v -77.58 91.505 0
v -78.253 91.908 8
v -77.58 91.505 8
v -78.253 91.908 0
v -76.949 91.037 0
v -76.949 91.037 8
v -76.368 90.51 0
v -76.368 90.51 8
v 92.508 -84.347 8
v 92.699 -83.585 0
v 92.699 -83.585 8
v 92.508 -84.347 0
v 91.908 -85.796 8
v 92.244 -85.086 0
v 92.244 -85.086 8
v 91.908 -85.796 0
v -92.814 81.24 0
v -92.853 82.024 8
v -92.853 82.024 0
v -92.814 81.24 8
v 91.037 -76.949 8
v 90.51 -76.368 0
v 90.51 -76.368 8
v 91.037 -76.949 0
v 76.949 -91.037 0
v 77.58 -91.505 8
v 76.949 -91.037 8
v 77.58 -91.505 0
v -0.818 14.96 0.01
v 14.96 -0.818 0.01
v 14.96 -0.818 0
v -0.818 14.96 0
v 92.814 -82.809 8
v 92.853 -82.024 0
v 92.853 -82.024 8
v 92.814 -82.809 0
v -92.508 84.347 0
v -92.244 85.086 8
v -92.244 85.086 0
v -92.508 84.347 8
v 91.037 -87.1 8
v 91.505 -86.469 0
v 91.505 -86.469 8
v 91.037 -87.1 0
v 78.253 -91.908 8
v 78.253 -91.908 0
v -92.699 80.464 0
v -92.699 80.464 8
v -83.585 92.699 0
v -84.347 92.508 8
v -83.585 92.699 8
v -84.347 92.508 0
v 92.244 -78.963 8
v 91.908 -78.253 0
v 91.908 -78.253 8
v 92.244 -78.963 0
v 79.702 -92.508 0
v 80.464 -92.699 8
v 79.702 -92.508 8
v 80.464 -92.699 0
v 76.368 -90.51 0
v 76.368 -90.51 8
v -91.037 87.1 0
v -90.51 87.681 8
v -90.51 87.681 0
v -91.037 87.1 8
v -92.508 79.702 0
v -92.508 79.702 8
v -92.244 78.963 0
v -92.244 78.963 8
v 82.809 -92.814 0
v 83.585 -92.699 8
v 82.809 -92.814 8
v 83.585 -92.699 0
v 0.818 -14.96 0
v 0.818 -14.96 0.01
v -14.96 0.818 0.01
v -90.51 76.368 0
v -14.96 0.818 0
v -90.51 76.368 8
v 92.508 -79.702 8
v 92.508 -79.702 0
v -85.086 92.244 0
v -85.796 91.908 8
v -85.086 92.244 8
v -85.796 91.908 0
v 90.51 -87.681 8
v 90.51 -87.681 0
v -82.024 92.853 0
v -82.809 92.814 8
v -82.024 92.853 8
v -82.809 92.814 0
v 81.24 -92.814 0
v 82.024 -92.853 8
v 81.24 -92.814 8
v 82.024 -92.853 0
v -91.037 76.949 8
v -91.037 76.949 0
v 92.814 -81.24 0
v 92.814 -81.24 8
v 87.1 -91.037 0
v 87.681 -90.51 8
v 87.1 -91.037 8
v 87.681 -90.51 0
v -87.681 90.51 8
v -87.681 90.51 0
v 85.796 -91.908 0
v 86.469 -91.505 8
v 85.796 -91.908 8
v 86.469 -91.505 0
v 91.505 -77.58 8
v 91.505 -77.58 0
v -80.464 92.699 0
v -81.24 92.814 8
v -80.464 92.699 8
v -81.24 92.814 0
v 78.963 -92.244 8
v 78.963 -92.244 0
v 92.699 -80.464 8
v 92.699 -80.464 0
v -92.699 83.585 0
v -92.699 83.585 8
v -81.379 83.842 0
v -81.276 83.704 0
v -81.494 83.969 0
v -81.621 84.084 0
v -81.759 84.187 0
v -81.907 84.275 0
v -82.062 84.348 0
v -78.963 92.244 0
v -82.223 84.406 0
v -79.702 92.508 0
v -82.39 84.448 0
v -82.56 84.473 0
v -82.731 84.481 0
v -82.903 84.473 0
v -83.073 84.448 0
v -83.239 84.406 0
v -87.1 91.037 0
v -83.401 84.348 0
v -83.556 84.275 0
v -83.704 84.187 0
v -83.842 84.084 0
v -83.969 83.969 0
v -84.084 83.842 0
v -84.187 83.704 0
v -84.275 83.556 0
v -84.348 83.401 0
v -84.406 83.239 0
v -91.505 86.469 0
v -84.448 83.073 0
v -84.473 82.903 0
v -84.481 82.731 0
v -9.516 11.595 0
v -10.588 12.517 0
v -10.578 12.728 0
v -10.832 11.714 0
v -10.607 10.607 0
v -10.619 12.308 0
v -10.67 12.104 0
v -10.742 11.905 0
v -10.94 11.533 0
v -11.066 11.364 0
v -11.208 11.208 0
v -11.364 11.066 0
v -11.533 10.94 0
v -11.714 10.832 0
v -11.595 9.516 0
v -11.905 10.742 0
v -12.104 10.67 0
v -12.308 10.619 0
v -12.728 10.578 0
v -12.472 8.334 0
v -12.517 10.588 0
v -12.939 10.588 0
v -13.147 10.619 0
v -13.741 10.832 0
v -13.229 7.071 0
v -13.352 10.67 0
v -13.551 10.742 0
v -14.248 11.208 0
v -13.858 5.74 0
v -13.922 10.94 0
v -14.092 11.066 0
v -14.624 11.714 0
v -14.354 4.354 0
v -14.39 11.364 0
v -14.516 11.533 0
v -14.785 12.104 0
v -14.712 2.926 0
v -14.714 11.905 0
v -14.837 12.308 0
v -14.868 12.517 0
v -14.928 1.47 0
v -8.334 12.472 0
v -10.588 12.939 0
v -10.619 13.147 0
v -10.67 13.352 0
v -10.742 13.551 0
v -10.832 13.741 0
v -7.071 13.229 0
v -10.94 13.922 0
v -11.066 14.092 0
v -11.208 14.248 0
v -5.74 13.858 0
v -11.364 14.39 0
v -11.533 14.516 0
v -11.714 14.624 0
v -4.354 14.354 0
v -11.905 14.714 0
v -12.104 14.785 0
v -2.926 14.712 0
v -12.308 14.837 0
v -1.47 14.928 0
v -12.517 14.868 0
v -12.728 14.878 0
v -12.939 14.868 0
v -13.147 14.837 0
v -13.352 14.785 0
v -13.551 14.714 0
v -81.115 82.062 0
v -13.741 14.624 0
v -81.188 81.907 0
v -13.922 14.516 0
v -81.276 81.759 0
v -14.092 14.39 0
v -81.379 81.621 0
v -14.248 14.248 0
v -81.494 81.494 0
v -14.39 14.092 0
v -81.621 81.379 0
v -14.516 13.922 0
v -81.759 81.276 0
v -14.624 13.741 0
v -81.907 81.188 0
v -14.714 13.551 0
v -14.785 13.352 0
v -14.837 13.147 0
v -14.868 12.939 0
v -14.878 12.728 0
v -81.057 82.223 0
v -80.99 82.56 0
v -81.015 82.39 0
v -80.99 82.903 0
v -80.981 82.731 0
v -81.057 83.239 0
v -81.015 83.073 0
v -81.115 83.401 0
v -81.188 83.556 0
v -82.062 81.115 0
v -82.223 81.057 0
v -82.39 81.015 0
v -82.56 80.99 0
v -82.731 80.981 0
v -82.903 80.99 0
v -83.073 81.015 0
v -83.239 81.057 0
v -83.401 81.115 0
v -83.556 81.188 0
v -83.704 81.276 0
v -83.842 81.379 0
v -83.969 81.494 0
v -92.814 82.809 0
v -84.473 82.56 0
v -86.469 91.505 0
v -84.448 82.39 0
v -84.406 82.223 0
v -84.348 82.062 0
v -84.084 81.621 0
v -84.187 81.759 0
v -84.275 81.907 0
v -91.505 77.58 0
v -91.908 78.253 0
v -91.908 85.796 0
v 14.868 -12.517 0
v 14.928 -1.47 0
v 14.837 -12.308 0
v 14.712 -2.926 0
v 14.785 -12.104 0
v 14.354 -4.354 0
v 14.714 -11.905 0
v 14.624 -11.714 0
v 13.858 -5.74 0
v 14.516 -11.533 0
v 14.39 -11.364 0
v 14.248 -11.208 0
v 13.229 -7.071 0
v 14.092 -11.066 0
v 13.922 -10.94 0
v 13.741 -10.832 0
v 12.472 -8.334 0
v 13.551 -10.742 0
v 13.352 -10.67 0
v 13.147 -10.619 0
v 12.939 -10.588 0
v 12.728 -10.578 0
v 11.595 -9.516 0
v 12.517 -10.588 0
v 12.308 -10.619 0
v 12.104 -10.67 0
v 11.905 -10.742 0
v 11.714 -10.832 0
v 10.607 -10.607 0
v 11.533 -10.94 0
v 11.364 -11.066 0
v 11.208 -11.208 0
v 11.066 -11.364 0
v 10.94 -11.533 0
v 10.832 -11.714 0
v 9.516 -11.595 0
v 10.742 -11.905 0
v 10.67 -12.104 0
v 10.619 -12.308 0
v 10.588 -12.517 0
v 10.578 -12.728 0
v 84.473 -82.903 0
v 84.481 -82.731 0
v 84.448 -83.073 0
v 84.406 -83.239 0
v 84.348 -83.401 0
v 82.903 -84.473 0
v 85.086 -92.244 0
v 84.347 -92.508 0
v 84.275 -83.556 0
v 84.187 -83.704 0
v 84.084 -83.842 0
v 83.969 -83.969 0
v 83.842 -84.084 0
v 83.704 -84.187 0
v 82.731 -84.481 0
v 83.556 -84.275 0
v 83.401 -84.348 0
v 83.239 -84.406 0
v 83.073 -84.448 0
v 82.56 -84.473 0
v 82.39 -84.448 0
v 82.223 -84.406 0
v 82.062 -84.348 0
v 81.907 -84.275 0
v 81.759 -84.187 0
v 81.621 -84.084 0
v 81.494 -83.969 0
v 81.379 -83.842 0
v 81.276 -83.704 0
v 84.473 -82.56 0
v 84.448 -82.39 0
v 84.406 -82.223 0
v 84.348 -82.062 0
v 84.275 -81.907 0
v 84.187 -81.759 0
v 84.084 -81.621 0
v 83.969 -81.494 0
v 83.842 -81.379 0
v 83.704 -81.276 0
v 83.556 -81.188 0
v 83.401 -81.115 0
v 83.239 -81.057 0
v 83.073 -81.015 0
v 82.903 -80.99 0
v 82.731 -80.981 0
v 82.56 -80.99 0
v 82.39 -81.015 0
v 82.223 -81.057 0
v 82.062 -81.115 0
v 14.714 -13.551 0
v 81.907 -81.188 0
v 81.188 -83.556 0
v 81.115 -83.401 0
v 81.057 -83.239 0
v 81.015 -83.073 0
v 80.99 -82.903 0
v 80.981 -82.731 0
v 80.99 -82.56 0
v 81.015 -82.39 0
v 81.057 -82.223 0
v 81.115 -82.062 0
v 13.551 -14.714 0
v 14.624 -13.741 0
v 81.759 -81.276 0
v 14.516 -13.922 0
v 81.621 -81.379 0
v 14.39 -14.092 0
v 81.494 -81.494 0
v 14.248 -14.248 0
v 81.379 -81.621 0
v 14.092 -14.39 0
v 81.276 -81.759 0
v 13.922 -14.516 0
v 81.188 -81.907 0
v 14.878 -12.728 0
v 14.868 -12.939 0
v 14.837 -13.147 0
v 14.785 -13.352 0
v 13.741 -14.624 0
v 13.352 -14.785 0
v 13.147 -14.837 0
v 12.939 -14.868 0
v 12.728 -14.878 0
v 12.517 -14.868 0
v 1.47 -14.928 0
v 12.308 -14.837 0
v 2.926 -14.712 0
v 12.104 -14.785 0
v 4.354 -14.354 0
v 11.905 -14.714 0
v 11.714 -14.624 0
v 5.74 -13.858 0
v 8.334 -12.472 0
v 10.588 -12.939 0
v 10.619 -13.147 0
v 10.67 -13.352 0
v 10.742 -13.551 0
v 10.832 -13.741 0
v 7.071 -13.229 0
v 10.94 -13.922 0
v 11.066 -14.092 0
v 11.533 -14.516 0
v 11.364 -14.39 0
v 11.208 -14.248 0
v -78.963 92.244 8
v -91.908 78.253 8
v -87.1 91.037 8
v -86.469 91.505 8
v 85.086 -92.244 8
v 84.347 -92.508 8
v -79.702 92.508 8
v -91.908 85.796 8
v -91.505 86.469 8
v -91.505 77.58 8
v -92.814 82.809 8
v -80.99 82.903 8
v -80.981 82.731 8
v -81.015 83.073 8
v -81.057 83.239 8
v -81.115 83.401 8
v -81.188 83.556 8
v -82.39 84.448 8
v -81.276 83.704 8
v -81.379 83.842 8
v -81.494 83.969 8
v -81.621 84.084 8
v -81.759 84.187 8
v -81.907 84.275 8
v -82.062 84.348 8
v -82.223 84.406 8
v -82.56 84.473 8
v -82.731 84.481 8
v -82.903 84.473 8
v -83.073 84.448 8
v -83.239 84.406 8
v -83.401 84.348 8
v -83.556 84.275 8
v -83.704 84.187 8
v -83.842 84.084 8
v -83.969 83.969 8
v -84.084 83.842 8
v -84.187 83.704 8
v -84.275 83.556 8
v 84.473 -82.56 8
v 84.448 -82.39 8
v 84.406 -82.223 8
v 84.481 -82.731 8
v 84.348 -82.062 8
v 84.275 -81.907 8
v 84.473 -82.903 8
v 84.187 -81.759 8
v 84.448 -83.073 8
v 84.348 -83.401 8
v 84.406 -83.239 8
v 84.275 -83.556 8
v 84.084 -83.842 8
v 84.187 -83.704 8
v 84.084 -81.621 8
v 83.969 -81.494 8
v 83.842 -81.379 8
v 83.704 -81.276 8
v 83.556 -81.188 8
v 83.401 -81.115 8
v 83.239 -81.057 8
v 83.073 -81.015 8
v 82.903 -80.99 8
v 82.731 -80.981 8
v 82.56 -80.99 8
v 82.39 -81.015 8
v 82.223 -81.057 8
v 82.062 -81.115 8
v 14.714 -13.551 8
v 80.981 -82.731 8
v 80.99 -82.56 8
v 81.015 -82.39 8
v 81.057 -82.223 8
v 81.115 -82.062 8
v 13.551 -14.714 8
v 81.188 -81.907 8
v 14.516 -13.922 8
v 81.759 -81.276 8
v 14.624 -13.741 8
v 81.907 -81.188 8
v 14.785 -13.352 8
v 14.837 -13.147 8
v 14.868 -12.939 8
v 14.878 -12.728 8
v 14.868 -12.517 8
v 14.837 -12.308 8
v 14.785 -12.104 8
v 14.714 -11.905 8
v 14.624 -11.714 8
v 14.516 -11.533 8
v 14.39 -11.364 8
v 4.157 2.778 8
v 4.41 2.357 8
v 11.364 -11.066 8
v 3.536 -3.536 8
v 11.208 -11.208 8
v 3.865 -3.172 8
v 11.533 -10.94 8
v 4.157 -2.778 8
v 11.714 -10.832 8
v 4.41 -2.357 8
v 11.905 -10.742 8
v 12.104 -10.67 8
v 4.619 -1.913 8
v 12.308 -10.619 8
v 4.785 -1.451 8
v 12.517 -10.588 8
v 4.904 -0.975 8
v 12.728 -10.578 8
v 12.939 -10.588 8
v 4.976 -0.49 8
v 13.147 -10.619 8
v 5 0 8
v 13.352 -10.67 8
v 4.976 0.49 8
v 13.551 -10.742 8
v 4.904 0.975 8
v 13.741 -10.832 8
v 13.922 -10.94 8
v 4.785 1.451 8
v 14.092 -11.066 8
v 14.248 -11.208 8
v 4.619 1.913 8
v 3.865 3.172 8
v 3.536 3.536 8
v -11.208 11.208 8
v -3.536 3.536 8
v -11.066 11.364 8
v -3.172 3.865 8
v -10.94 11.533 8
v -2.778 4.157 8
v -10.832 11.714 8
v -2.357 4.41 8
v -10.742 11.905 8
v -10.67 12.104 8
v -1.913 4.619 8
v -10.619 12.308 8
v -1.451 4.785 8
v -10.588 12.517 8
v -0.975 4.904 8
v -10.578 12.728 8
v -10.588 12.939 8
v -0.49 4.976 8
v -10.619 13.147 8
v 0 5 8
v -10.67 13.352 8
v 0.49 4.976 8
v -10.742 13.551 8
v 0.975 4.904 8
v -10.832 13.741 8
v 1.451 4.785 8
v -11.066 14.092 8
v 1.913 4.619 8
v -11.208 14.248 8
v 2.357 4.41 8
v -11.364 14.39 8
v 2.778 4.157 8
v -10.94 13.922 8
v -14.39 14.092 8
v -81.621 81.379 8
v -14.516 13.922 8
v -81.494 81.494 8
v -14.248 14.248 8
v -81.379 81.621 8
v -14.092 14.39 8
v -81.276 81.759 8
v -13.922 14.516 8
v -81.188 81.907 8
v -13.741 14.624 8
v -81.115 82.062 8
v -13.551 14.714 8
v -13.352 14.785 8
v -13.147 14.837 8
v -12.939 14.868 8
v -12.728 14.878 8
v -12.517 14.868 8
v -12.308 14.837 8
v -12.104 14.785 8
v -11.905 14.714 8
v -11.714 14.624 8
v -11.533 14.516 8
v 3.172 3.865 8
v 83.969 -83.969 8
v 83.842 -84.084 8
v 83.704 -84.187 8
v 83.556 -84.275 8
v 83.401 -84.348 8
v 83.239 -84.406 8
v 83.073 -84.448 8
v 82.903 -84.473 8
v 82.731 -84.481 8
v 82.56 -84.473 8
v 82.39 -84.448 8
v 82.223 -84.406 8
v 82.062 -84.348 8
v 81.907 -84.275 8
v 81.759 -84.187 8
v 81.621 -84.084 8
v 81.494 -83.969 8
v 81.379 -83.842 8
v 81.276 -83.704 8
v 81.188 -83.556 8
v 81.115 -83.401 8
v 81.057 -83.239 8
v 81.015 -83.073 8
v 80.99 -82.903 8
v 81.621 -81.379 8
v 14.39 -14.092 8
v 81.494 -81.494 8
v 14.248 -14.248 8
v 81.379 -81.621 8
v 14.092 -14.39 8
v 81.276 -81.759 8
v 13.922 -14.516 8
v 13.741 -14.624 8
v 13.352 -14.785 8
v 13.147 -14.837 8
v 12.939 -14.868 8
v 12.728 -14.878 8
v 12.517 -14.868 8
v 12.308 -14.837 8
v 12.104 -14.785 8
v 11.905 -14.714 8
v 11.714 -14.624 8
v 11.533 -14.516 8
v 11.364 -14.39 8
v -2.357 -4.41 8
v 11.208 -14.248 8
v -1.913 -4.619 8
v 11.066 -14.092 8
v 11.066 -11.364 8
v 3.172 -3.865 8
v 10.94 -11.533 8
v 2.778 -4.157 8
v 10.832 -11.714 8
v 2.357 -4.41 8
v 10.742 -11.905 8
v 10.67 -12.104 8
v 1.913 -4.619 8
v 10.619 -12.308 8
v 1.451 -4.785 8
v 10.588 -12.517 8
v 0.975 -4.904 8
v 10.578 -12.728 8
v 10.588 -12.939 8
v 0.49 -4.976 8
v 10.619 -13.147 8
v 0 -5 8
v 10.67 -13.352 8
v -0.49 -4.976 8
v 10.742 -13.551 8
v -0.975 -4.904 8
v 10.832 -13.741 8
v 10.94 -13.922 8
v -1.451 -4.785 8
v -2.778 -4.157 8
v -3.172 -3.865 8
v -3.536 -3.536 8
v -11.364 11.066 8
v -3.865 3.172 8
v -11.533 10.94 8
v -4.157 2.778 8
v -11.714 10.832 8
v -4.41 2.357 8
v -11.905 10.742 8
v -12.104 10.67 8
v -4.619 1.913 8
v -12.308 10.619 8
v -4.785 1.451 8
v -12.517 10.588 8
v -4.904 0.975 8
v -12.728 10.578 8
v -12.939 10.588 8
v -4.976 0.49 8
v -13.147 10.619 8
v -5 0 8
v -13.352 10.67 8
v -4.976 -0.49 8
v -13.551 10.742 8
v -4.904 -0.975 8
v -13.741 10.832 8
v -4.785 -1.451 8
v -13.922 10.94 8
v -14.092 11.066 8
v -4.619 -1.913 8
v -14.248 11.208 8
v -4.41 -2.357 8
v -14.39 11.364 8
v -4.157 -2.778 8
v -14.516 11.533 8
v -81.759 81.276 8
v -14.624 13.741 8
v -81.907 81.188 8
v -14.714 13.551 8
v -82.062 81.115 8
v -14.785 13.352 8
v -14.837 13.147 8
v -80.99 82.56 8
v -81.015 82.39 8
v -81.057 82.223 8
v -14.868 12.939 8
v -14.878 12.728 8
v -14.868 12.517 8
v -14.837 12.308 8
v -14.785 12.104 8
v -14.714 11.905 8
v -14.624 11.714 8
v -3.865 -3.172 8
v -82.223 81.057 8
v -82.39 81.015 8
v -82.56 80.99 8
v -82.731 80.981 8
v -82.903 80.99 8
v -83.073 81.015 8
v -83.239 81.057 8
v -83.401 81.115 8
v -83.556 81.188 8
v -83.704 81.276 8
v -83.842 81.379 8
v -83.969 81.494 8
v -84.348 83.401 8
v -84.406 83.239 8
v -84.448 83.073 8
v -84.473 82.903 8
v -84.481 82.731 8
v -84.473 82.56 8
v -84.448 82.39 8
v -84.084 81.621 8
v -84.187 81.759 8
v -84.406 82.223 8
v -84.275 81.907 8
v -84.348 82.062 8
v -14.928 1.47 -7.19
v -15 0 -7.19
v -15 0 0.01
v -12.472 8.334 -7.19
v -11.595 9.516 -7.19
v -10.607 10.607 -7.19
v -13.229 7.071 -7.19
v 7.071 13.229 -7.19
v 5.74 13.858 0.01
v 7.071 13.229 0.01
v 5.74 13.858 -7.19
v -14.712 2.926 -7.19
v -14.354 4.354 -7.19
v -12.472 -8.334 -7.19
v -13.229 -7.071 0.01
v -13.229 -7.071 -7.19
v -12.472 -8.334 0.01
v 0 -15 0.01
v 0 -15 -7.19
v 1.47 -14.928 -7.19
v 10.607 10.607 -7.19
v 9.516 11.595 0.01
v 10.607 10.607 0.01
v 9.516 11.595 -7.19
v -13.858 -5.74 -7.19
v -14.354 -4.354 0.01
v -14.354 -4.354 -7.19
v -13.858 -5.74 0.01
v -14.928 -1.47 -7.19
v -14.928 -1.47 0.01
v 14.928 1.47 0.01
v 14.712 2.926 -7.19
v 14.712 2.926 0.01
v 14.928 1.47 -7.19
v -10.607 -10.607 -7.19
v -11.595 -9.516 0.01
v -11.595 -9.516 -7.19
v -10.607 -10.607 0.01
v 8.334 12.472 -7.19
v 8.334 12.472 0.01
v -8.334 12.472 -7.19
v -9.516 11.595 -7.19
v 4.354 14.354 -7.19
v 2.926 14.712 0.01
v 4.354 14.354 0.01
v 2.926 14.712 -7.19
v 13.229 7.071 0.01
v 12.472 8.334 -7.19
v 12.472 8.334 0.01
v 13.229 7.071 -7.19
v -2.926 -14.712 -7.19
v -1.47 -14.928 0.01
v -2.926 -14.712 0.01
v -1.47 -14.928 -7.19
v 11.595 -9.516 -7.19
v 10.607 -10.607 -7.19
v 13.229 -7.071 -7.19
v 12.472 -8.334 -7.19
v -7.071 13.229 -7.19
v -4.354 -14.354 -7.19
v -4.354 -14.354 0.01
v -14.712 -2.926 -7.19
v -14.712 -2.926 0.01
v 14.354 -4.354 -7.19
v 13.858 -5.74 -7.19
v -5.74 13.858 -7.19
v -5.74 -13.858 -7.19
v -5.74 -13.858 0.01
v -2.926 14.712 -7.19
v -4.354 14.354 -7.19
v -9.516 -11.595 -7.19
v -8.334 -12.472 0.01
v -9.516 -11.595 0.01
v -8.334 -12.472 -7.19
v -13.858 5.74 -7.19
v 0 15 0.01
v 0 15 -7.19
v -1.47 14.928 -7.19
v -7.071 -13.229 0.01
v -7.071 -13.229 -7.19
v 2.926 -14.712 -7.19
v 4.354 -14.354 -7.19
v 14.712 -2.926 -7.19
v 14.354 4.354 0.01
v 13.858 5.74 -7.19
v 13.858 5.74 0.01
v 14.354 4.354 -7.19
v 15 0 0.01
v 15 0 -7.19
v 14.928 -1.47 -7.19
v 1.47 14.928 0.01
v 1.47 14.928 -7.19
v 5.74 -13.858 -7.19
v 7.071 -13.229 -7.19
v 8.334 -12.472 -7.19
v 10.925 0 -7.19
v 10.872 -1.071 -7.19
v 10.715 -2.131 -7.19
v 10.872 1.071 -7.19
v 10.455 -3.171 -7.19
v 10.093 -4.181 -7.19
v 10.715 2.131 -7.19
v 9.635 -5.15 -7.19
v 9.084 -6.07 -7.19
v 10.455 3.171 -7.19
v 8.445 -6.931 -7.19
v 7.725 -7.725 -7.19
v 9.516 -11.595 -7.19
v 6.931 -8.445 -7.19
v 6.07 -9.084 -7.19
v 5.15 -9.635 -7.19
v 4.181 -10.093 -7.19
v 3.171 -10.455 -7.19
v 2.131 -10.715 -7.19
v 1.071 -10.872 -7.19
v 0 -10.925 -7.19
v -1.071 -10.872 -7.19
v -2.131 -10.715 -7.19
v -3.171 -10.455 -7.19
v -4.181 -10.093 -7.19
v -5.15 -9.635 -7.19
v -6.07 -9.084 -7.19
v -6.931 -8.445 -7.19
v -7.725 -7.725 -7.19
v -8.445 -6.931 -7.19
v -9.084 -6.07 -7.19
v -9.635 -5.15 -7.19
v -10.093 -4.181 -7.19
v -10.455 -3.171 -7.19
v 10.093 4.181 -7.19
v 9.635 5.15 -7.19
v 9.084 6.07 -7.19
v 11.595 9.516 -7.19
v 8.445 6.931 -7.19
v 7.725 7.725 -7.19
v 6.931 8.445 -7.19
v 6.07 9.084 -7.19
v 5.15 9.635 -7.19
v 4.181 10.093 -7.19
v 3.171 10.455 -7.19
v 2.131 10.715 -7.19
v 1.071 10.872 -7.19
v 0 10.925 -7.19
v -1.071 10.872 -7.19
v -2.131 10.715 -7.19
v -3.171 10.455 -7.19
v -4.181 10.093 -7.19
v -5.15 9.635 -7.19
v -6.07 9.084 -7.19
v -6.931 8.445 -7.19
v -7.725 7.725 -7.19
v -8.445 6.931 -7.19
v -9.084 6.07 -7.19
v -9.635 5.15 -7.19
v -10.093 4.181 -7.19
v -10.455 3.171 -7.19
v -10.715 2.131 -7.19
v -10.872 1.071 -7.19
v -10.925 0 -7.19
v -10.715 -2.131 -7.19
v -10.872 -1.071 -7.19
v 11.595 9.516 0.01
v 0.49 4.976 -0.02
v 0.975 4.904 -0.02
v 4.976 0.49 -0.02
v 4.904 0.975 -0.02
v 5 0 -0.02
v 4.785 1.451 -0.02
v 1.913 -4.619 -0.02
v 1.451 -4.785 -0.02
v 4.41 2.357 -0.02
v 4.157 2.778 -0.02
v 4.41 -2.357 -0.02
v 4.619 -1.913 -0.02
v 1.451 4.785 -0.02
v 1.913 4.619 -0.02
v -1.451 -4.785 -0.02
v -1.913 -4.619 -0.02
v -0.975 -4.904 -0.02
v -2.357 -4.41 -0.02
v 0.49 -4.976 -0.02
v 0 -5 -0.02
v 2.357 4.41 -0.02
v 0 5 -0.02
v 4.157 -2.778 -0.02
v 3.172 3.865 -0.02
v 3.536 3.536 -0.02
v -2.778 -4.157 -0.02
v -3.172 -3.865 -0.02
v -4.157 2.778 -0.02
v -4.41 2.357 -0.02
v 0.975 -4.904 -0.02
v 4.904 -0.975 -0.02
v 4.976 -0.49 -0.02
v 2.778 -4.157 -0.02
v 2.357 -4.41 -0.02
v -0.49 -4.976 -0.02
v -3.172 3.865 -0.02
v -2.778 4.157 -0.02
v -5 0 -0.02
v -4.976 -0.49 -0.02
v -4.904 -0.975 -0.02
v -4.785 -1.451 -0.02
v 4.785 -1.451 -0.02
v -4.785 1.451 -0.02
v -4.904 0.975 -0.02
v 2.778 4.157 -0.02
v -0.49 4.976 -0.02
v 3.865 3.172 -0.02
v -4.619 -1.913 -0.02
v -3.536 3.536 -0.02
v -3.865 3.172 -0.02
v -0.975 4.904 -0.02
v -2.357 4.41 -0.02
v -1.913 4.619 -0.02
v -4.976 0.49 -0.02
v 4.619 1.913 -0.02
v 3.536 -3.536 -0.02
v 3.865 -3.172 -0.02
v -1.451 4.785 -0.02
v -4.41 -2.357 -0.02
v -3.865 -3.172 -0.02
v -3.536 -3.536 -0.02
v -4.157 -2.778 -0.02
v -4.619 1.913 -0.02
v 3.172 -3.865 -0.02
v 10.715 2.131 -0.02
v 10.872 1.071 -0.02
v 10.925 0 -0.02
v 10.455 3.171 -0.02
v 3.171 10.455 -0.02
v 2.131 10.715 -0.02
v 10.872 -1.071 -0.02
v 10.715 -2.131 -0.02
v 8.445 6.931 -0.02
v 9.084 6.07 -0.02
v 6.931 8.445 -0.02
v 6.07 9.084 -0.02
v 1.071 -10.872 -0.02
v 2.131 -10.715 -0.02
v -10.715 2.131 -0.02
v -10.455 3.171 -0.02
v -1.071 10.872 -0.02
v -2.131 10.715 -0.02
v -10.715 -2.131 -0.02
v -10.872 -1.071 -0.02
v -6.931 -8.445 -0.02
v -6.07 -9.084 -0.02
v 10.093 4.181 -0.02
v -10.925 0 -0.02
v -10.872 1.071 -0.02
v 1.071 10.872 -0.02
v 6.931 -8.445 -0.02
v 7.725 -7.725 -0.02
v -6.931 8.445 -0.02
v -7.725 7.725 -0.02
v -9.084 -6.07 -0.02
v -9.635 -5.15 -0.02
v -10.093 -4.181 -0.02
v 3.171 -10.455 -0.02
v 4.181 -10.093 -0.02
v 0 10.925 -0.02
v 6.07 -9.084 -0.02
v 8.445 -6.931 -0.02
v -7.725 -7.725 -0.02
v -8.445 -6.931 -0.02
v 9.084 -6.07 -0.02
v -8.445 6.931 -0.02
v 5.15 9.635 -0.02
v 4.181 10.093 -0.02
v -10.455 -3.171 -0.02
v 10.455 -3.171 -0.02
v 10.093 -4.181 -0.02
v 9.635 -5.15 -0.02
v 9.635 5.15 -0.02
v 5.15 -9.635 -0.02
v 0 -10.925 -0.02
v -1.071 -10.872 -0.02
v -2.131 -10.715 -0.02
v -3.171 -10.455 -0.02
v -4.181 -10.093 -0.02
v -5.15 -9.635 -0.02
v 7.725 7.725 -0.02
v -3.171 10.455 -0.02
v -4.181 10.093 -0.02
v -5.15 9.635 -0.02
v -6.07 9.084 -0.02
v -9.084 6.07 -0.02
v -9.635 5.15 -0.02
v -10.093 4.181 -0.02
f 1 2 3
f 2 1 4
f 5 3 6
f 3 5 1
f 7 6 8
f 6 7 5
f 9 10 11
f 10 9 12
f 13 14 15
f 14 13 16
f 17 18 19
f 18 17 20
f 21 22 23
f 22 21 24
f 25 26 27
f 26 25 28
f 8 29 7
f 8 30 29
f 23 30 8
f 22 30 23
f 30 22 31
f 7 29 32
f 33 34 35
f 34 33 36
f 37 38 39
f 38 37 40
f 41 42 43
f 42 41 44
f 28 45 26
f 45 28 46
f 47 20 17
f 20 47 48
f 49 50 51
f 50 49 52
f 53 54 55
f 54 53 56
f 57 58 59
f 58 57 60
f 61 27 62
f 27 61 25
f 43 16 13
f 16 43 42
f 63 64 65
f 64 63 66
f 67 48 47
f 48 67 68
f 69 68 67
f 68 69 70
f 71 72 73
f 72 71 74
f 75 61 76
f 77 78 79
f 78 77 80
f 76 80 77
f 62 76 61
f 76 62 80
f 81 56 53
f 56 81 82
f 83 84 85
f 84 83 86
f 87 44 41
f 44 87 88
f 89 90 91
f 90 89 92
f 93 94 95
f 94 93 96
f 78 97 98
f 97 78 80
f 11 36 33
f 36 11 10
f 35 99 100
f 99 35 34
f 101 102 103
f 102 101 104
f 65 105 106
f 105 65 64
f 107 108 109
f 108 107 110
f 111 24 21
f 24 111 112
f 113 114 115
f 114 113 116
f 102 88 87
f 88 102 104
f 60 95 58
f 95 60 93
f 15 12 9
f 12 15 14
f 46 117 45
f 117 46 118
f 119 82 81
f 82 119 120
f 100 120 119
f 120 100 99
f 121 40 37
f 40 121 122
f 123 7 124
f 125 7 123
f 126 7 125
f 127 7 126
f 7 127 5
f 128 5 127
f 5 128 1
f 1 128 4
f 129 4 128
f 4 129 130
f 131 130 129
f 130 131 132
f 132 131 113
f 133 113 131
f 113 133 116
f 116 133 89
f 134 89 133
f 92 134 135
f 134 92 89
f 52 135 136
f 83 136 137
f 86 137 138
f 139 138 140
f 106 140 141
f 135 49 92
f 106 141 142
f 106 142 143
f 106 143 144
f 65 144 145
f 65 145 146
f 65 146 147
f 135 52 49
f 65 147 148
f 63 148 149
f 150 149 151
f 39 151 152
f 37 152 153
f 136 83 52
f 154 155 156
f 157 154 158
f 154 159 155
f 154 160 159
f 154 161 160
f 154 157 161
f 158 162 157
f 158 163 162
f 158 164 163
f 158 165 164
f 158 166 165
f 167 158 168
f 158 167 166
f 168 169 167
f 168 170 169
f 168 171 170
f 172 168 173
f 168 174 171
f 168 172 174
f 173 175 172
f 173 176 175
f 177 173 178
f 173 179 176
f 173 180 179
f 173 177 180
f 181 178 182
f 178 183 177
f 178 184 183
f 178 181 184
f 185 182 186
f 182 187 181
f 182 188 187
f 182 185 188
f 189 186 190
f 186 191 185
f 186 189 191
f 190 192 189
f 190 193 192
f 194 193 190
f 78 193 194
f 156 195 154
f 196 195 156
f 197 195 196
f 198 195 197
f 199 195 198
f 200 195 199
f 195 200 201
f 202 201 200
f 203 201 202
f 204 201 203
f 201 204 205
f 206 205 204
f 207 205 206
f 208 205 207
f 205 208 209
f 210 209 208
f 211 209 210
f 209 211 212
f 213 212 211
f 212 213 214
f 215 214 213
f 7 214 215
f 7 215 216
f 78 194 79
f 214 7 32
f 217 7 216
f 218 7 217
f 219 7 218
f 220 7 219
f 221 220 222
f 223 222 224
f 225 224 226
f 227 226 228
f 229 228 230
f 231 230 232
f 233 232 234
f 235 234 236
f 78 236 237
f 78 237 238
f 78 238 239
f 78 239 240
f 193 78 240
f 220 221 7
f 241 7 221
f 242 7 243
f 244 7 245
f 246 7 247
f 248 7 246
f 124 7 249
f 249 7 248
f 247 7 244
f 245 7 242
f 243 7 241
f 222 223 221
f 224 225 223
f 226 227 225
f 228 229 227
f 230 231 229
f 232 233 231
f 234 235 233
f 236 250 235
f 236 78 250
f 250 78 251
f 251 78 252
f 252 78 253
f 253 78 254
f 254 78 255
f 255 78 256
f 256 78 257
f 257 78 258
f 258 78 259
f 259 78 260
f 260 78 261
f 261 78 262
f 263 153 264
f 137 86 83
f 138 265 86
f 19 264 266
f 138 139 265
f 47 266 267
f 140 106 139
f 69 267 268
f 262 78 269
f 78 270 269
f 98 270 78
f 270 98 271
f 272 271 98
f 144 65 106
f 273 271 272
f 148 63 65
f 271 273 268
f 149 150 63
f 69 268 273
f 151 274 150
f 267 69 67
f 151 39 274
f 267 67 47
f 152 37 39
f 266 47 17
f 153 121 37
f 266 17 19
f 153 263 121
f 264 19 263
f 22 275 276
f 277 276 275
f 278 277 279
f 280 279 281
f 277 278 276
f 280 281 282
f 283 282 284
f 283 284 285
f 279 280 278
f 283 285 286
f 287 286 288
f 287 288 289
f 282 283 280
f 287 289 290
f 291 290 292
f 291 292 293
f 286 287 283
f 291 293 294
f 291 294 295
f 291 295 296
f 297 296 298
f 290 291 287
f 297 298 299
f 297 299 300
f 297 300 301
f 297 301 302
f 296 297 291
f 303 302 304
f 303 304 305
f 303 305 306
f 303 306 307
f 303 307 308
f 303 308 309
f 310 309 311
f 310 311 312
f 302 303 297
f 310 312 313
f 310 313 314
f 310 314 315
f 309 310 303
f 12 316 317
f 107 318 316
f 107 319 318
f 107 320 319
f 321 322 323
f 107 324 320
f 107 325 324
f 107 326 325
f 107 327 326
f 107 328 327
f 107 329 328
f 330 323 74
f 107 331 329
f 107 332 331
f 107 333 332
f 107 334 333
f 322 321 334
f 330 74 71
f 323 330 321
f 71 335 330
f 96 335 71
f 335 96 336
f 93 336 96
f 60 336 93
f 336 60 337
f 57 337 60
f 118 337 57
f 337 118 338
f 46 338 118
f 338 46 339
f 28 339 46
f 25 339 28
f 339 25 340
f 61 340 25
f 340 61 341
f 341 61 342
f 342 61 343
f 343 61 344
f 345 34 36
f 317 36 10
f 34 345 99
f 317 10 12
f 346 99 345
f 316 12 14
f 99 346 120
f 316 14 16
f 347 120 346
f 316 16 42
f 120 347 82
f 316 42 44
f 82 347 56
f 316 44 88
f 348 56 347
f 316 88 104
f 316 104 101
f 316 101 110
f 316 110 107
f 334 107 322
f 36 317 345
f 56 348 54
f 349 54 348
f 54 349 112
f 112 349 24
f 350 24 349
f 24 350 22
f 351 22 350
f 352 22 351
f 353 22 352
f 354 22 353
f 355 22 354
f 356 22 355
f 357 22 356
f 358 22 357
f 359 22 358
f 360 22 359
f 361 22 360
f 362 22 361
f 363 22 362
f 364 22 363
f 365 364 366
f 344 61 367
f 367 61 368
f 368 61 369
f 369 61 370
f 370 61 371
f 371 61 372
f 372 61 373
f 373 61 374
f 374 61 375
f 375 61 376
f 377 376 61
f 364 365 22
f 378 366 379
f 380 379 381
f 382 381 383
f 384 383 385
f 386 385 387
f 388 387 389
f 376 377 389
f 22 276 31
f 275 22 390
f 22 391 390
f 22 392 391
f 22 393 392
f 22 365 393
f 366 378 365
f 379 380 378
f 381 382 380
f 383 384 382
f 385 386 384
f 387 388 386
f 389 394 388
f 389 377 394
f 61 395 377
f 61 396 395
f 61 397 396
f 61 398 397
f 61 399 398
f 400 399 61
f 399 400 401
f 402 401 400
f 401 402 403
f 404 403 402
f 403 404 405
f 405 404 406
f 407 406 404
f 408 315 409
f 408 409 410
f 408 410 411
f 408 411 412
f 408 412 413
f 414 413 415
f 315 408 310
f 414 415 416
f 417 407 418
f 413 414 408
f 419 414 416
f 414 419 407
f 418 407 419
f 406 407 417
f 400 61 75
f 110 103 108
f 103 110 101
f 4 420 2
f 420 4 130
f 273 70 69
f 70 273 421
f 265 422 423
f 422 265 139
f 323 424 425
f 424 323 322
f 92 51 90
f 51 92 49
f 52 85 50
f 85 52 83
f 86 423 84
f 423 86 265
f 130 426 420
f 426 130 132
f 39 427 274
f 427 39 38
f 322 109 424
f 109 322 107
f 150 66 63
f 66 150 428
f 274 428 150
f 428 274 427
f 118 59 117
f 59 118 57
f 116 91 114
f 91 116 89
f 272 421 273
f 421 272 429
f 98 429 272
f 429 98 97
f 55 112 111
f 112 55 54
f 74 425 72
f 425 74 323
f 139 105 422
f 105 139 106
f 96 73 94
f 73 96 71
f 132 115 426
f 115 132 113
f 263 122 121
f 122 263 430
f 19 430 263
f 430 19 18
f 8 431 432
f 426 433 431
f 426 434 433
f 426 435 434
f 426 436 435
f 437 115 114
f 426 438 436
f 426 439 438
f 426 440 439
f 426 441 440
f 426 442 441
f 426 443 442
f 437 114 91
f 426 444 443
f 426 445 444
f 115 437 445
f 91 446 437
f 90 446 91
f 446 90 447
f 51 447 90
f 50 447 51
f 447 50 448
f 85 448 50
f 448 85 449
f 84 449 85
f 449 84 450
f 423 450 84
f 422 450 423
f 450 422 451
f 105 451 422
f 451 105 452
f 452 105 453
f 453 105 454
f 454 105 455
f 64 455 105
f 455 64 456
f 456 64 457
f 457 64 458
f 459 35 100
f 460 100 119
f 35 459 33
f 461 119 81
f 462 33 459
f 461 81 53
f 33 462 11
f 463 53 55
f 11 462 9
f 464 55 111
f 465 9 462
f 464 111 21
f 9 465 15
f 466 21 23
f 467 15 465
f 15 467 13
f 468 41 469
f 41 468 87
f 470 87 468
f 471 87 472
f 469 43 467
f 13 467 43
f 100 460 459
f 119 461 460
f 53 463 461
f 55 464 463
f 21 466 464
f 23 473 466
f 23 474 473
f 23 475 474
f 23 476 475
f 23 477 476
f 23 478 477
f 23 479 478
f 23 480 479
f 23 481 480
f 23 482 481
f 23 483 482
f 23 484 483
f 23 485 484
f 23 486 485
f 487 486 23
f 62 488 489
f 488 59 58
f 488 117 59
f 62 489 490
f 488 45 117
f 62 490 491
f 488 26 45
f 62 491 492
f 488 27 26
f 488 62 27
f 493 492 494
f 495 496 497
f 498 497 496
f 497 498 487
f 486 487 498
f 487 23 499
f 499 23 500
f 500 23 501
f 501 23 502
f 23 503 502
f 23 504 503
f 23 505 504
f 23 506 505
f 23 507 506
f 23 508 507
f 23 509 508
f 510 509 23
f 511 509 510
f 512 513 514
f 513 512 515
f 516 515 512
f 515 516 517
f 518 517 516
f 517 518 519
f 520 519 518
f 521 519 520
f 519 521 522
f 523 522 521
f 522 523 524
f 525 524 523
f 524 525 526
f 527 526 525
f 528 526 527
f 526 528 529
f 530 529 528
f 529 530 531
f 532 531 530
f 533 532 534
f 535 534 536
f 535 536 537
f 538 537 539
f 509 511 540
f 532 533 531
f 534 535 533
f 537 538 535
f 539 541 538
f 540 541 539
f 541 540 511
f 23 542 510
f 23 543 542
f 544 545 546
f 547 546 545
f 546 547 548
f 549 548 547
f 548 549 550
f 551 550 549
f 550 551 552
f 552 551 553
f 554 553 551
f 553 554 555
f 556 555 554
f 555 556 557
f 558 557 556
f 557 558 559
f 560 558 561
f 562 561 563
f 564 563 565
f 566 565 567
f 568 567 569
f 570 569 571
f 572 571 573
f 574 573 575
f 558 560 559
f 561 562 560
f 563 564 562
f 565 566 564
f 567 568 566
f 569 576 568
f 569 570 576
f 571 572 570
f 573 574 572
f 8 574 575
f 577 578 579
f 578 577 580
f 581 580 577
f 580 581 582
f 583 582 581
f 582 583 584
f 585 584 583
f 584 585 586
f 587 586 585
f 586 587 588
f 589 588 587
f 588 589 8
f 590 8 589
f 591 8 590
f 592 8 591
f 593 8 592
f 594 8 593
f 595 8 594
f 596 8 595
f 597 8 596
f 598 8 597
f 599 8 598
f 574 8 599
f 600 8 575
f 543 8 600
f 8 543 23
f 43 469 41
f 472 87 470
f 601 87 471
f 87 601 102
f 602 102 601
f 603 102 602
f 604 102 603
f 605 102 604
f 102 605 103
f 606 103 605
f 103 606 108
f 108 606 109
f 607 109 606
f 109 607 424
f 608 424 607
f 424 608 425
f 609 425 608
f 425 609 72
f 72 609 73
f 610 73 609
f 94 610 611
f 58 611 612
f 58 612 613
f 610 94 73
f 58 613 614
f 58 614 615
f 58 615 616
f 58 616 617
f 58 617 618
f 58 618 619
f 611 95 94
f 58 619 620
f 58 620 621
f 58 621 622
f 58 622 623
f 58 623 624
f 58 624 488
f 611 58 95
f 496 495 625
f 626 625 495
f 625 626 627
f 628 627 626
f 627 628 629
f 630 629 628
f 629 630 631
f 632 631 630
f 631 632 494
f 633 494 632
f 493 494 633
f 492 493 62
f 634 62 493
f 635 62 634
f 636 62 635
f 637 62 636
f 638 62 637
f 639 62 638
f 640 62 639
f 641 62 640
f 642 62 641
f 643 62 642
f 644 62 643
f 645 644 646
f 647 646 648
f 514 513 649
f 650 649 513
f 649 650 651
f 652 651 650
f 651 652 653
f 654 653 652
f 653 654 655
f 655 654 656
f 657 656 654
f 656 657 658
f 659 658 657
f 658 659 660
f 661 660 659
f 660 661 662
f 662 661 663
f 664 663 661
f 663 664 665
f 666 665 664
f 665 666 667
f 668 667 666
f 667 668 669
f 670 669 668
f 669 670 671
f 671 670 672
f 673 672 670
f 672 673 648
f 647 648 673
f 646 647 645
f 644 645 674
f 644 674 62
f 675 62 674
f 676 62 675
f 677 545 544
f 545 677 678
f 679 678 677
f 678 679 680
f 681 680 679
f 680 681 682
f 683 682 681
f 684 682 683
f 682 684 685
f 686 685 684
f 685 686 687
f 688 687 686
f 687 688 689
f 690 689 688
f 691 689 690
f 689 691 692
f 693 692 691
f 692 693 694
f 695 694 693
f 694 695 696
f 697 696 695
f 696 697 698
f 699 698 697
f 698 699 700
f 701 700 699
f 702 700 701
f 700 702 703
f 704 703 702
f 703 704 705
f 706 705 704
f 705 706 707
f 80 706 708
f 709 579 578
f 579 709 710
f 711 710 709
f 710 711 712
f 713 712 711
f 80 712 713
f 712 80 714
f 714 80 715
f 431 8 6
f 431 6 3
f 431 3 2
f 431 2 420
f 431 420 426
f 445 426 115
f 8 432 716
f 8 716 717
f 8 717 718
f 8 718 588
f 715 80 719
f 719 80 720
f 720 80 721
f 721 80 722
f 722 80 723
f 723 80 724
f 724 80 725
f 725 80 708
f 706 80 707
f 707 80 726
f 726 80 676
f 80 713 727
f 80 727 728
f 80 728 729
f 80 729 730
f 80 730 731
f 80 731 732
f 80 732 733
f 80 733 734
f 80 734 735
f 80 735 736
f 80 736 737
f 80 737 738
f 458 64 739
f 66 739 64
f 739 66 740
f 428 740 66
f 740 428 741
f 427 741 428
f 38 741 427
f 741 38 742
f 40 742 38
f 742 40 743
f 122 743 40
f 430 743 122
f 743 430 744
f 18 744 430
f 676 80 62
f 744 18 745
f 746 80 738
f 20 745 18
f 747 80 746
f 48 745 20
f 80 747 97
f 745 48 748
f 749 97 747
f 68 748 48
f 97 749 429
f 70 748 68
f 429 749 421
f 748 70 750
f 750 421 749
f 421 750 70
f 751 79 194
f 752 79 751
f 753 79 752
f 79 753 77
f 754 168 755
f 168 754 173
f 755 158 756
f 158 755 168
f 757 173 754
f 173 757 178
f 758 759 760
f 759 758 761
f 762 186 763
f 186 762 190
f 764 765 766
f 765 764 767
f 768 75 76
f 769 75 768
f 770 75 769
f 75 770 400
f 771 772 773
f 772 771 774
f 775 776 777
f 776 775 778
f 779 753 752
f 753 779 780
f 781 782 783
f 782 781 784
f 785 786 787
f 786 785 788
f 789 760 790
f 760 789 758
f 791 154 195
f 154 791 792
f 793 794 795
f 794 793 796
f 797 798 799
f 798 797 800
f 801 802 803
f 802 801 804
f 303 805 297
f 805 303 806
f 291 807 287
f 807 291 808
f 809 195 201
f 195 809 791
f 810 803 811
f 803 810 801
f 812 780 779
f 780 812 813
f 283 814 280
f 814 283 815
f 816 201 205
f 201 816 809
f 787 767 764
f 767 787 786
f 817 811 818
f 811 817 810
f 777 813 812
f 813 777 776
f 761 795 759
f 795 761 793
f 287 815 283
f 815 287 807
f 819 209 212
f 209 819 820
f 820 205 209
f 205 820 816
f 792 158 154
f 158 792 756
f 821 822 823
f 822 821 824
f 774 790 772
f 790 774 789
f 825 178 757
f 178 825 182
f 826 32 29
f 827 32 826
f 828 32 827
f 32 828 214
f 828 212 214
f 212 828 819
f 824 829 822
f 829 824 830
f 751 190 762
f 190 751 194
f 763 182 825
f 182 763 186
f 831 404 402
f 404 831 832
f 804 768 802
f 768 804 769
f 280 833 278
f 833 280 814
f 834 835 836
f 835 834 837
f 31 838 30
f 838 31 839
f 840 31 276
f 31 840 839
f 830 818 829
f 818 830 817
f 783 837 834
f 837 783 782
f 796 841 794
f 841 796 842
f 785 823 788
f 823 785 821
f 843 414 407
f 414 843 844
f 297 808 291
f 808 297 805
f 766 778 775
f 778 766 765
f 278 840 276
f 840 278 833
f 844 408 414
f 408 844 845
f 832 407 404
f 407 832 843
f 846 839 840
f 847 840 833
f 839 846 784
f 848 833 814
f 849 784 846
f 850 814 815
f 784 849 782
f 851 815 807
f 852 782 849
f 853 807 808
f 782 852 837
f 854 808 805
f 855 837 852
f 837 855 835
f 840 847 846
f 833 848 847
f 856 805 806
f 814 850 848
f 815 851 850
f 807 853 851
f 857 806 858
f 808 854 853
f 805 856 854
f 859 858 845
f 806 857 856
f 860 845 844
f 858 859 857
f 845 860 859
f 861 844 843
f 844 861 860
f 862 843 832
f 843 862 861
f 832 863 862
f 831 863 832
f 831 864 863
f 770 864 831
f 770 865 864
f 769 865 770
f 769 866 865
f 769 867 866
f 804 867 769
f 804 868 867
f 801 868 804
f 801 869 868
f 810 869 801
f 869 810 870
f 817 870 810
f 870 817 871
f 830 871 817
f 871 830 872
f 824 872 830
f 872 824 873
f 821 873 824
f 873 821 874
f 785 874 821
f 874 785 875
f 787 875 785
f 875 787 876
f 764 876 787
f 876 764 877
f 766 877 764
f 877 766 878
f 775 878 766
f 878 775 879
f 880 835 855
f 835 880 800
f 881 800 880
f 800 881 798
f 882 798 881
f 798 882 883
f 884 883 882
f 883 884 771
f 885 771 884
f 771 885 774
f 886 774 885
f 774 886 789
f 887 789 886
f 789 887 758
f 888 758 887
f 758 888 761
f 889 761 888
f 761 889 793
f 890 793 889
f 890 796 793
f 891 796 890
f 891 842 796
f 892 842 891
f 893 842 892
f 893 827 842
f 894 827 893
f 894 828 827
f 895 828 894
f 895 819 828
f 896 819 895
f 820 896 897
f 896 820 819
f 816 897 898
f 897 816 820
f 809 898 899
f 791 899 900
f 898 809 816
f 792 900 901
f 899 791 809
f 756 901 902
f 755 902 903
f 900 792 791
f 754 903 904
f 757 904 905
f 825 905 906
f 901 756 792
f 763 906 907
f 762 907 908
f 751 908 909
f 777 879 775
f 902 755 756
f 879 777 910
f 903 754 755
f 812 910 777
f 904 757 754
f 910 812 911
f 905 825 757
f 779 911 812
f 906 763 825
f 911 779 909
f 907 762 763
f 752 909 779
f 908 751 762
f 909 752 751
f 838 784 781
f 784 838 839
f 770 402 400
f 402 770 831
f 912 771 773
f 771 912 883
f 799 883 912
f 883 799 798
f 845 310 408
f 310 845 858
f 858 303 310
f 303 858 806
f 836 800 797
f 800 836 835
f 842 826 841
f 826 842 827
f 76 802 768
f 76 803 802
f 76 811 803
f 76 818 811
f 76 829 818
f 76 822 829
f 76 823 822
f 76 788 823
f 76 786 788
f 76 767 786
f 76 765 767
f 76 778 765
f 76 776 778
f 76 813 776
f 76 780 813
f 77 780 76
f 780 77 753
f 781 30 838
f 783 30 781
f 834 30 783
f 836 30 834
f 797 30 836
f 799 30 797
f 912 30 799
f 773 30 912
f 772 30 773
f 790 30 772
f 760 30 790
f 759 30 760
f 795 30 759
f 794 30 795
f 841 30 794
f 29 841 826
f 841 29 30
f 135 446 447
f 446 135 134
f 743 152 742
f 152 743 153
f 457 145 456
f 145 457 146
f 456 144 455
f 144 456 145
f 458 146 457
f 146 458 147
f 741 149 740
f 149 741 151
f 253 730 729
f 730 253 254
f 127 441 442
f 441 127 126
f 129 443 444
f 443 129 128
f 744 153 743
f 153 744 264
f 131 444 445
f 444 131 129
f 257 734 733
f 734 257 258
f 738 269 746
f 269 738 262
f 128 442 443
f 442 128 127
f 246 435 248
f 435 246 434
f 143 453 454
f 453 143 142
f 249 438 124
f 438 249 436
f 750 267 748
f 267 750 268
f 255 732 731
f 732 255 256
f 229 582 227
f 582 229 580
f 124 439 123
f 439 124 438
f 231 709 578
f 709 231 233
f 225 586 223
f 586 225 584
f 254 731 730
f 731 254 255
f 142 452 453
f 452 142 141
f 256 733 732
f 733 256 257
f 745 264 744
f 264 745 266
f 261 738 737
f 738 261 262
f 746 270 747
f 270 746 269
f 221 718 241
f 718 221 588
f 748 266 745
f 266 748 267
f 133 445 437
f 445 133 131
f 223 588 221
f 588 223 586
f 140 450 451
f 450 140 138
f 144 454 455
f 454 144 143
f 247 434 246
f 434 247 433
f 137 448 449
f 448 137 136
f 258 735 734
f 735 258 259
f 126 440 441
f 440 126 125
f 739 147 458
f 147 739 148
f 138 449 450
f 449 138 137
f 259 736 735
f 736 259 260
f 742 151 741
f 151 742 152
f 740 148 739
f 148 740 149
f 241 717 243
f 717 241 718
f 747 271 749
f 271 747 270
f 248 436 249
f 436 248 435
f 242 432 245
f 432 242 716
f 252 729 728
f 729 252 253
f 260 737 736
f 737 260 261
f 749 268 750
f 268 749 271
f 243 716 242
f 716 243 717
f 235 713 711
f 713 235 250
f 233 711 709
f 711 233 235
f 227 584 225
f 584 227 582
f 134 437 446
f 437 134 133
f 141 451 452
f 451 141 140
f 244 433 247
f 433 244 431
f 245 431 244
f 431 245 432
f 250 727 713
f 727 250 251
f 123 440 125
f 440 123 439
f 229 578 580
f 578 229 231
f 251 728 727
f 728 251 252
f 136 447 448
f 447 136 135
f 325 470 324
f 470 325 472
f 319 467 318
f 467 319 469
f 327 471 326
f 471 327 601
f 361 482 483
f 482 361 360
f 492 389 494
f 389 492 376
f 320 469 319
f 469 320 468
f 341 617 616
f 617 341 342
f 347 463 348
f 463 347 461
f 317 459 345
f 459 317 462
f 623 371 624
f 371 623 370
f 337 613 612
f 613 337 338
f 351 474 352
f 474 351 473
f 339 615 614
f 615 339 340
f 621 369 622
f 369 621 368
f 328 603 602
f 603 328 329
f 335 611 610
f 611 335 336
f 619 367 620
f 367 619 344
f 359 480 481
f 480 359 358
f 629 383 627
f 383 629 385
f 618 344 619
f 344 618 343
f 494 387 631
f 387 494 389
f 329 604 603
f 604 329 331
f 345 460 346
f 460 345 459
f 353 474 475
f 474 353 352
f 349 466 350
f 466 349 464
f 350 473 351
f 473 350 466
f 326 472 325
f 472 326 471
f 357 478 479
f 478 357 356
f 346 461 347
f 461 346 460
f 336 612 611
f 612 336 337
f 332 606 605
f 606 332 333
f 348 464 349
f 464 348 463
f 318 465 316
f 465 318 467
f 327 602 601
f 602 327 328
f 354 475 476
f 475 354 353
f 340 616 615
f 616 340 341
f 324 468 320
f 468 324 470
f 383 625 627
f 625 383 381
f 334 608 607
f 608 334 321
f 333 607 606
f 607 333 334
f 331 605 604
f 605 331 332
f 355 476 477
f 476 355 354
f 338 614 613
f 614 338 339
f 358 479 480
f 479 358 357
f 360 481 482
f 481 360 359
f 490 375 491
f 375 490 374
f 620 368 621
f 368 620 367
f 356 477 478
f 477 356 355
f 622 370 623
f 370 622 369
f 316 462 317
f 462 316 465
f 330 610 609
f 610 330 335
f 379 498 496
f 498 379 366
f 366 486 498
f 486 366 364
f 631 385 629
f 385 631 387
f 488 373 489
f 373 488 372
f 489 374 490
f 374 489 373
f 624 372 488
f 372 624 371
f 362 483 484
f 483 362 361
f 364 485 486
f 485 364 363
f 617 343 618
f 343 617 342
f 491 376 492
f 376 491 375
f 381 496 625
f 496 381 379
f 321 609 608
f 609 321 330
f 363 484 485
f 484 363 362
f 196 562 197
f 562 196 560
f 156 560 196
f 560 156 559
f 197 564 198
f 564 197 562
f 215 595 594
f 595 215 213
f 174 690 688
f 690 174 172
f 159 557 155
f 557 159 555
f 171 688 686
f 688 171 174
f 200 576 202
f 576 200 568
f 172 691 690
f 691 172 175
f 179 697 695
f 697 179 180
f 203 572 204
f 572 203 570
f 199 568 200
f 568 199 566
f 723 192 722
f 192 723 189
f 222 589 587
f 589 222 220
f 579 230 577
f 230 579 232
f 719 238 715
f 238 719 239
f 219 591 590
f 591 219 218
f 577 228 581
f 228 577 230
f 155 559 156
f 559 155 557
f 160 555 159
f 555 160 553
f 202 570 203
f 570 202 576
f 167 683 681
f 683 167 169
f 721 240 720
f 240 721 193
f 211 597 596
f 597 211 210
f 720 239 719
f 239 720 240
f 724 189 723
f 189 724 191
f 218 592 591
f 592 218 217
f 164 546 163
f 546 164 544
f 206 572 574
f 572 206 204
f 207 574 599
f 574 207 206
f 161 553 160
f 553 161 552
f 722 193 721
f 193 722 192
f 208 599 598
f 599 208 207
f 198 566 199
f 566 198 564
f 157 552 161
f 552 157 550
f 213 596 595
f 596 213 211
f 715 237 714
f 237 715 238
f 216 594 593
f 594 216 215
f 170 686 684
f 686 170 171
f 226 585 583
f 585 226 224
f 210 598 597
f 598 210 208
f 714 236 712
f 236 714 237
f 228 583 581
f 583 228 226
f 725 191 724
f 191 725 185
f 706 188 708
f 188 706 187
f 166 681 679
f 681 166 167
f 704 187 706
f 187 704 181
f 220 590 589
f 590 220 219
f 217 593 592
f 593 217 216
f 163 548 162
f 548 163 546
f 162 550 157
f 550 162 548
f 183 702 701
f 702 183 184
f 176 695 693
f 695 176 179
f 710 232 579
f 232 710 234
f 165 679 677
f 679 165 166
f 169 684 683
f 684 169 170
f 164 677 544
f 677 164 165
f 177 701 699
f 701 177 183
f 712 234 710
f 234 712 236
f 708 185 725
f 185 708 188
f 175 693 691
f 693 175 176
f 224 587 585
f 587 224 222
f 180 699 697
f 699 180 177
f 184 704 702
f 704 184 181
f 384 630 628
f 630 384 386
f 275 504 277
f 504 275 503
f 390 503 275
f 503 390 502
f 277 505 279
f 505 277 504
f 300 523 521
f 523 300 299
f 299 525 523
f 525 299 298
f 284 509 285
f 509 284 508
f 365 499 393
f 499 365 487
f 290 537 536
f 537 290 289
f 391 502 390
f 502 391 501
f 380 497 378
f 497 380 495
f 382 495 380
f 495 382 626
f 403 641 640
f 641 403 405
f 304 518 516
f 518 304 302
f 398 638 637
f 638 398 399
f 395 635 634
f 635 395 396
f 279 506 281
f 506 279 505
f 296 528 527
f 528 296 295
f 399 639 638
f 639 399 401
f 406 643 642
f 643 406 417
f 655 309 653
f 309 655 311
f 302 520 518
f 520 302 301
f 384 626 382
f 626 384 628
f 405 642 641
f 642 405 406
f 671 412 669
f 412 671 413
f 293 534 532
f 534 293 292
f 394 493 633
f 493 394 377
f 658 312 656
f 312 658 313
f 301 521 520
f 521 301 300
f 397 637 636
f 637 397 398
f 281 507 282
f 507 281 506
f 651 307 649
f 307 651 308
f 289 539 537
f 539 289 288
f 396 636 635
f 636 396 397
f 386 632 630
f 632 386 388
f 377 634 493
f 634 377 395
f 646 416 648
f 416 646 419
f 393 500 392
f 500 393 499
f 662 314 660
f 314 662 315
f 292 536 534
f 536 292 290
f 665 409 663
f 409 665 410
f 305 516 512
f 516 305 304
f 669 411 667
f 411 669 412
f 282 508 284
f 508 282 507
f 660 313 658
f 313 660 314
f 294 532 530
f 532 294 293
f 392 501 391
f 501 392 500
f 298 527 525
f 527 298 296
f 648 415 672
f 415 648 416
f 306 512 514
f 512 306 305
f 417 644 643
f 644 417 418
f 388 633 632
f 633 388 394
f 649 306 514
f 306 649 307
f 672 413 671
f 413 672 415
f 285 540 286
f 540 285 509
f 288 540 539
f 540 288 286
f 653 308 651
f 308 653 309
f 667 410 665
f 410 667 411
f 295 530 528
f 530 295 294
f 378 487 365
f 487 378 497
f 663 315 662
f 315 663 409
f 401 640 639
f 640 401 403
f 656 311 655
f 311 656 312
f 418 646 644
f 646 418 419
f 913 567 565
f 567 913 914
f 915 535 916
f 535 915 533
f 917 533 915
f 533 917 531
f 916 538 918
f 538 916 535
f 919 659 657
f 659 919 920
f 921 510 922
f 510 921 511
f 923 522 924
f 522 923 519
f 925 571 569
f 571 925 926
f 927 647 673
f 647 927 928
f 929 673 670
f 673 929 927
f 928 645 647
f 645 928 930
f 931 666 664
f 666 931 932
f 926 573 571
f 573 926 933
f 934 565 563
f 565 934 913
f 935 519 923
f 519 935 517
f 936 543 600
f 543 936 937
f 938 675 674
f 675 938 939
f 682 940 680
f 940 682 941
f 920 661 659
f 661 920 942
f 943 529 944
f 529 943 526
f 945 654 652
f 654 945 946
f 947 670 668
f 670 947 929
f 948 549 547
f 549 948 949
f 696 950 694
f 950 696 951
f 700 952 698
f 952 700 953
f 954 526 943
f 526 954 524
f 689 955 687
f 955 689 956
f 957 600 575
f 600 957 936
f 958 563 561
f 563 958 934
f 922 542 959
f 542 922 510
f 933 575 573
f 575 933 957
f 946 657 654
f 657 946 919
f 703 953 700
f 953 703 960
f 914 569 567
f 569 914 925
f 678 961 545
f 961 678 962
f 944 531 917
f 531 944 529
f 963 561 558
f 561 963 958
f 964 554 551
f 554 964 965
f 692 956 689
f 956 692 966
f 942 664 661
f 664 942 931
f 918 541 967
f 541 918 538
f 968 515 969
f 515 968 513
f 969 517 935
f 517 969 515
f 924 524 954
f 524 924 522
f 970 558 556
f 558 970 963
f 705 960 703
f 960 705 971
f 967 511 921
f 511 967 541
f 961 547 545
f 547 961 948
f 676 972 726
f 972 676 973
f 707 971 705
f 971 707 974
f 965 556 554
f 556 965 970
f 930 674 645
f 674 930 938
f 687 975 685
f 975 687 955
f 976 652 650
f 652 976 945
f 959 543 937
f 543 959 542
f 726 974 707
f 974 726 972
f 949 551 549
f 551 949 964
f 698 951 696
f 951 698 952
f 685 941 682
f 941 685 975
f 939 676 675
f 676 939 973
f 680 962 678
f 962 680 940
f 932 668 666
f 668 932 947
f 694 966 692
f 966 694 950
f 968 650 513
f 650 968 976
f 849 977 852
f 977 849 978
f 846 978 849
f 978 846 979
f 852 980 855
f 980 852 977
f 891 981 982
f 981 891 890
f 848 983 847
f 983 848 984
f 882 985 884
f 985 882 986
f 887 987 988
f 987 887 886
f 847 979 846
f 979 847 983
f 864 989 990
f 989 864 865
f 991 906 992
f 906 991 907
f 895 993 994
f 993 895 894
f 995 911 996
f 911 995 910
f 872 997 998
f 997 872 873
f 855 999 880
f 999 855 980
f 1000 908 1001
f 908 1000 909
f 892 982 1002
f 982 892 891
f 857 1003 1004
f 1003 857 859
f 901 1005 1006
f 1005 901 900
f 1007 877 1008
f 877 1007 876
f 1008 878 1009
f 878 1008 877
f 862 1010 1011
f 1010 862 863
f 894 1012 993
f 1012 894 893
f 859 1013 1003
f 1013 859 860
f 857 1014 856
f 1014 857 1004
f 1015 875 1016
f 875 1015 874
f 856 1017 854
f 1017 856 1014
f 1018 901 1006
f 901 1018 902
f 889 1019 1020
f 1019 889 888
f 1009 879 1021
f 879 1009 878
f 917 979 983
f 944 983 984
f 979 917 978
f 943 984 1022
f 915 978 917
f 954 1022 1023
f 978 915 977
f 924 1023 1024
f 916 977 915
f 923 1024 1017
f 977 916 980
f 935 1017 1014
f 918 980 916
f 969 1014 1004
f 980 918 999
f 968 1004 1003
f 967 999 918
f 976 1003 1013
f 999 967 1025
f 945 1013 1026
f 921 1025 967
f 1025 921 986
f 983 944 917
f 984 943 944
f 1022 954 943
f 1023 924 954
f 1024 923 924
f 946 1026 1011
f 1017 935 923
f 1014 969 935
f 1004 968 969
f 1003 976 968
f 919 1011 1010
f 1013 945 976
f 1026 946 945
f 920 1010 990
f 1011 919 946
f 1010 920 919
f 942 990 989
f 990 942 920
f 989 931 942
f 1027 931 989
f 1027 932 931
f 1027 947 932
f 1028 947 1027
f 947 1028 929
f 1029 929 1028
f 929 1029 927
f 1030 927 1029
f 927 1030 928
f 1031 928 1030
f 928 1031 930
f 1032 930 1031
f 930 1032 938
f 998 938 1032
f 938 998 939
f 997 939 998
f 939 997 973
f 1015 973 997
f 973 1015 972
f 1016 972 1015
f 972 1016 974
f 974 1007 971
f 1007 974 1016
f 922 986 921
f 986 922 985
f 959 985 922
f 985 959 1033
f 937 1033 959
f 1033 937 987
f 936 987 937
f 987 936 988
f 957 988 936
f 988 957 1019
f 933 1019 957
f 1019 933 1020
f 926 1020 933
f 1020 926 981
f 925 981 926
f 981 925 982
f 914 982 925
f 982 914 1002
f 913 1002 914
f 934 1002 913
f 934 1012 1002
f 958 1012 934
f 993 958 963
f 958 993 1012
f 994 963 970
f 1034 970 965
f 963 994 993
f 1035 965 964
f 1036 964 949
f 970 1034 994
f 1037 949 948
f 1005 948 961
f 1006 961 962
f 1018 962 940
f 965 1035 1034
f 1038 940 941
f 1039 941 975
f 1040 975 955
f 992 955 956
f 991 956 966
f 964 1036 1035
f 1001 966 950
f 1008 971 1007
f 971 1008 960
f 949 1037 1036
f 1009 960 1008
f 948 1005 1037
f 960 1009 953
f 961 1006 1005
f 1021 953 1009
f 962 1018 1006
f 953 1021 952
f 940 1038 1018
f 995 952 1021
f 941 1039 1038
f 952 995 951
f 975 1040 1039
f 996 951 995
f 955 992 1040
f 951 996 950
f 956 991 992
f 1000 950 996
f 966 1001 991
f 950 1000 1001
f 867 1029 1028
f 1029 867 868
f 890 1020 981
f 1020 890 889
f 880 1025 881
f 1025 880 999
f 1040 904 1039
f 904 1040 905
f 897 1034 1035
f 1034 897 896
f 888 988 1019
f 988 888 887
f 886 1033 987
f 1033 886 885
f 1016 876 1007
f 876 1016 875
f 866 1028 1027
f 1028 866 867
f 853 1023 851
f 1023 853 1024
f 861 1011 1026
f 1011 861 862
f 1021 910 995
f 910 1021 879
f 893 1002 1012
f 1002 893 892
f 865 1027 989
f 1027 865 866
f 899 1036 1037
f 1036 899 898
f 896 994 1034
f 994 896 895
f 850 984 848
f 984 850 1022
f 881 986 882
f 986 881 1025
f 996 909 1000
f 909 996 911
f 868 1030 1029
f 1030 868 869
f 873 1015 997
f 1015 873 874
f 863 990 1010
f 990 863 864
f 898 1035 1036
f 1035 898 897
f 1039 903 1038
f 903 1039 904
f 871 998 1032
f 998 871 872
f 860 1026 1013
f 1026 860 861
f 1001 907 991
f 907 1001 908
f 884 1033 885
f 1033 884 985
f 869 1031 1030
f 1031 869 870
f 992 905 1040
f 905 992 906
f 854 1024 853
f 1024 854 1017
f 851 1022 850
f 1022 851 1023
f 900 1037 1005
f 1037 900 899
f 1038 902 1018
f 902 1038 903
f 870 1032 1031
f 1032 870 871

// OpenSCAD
// Gen-CY — rear BEARING BRIDGE (bar endbell, 2026-10-10): a 608 boss on a 20 mm wide bar that spans the
// two frame rods at 135 deg and 135+180 deg (R = flange_bolt_r). The front bridge uses the rods at 45/225 deg, the rear
// bridge the rods at 135/315 deg, so the two bridges cross at 90 deg and the stator is held at 4 points.
// A bar instead of a full disc is what lets this big-ring kit fit ONE 410 mm plate. Print flat face DOWN (boss up, no supports).
// Brace holes (temporary M4 jack rods, R = brace_r) sit on the bar axis.
include <parameters.scad>;
$fn = 64;
bar_w = 20;
bar_len = 2 * (flange_bolt_r + 9);
module bar_2d() { offset(r=8) offset(delta=-8) square([bar_len, bar_w], center=true); }
difference() {
    rotate([0, 0, 135]) union() {
        linear_extrude(endbell_thick) bar_2d();
        translate([0, 0, -bearing_h + 0.01]) cylinder(d=30, h=bearing_h);
    }
    translate([0, 0, -bearing_h - 0.1]) cylinder(d=endbell_shaft_clear, h=50);
    translate([0, 0, -bearing_h - 0.02]) cylinder(d=bearing_d, h=bearing_h);
    for (s = [0, 180]) rotate([0, 0, 135 + s]) translate([flange_bolt_r, 0, -20]) cylinder(d=m3_clear, h=60);
    for (a = brace_angles) translate([brace_r*cos(a), brace_r*sin(a), -20]) cylinder(d=brace_d, h=50);
}
